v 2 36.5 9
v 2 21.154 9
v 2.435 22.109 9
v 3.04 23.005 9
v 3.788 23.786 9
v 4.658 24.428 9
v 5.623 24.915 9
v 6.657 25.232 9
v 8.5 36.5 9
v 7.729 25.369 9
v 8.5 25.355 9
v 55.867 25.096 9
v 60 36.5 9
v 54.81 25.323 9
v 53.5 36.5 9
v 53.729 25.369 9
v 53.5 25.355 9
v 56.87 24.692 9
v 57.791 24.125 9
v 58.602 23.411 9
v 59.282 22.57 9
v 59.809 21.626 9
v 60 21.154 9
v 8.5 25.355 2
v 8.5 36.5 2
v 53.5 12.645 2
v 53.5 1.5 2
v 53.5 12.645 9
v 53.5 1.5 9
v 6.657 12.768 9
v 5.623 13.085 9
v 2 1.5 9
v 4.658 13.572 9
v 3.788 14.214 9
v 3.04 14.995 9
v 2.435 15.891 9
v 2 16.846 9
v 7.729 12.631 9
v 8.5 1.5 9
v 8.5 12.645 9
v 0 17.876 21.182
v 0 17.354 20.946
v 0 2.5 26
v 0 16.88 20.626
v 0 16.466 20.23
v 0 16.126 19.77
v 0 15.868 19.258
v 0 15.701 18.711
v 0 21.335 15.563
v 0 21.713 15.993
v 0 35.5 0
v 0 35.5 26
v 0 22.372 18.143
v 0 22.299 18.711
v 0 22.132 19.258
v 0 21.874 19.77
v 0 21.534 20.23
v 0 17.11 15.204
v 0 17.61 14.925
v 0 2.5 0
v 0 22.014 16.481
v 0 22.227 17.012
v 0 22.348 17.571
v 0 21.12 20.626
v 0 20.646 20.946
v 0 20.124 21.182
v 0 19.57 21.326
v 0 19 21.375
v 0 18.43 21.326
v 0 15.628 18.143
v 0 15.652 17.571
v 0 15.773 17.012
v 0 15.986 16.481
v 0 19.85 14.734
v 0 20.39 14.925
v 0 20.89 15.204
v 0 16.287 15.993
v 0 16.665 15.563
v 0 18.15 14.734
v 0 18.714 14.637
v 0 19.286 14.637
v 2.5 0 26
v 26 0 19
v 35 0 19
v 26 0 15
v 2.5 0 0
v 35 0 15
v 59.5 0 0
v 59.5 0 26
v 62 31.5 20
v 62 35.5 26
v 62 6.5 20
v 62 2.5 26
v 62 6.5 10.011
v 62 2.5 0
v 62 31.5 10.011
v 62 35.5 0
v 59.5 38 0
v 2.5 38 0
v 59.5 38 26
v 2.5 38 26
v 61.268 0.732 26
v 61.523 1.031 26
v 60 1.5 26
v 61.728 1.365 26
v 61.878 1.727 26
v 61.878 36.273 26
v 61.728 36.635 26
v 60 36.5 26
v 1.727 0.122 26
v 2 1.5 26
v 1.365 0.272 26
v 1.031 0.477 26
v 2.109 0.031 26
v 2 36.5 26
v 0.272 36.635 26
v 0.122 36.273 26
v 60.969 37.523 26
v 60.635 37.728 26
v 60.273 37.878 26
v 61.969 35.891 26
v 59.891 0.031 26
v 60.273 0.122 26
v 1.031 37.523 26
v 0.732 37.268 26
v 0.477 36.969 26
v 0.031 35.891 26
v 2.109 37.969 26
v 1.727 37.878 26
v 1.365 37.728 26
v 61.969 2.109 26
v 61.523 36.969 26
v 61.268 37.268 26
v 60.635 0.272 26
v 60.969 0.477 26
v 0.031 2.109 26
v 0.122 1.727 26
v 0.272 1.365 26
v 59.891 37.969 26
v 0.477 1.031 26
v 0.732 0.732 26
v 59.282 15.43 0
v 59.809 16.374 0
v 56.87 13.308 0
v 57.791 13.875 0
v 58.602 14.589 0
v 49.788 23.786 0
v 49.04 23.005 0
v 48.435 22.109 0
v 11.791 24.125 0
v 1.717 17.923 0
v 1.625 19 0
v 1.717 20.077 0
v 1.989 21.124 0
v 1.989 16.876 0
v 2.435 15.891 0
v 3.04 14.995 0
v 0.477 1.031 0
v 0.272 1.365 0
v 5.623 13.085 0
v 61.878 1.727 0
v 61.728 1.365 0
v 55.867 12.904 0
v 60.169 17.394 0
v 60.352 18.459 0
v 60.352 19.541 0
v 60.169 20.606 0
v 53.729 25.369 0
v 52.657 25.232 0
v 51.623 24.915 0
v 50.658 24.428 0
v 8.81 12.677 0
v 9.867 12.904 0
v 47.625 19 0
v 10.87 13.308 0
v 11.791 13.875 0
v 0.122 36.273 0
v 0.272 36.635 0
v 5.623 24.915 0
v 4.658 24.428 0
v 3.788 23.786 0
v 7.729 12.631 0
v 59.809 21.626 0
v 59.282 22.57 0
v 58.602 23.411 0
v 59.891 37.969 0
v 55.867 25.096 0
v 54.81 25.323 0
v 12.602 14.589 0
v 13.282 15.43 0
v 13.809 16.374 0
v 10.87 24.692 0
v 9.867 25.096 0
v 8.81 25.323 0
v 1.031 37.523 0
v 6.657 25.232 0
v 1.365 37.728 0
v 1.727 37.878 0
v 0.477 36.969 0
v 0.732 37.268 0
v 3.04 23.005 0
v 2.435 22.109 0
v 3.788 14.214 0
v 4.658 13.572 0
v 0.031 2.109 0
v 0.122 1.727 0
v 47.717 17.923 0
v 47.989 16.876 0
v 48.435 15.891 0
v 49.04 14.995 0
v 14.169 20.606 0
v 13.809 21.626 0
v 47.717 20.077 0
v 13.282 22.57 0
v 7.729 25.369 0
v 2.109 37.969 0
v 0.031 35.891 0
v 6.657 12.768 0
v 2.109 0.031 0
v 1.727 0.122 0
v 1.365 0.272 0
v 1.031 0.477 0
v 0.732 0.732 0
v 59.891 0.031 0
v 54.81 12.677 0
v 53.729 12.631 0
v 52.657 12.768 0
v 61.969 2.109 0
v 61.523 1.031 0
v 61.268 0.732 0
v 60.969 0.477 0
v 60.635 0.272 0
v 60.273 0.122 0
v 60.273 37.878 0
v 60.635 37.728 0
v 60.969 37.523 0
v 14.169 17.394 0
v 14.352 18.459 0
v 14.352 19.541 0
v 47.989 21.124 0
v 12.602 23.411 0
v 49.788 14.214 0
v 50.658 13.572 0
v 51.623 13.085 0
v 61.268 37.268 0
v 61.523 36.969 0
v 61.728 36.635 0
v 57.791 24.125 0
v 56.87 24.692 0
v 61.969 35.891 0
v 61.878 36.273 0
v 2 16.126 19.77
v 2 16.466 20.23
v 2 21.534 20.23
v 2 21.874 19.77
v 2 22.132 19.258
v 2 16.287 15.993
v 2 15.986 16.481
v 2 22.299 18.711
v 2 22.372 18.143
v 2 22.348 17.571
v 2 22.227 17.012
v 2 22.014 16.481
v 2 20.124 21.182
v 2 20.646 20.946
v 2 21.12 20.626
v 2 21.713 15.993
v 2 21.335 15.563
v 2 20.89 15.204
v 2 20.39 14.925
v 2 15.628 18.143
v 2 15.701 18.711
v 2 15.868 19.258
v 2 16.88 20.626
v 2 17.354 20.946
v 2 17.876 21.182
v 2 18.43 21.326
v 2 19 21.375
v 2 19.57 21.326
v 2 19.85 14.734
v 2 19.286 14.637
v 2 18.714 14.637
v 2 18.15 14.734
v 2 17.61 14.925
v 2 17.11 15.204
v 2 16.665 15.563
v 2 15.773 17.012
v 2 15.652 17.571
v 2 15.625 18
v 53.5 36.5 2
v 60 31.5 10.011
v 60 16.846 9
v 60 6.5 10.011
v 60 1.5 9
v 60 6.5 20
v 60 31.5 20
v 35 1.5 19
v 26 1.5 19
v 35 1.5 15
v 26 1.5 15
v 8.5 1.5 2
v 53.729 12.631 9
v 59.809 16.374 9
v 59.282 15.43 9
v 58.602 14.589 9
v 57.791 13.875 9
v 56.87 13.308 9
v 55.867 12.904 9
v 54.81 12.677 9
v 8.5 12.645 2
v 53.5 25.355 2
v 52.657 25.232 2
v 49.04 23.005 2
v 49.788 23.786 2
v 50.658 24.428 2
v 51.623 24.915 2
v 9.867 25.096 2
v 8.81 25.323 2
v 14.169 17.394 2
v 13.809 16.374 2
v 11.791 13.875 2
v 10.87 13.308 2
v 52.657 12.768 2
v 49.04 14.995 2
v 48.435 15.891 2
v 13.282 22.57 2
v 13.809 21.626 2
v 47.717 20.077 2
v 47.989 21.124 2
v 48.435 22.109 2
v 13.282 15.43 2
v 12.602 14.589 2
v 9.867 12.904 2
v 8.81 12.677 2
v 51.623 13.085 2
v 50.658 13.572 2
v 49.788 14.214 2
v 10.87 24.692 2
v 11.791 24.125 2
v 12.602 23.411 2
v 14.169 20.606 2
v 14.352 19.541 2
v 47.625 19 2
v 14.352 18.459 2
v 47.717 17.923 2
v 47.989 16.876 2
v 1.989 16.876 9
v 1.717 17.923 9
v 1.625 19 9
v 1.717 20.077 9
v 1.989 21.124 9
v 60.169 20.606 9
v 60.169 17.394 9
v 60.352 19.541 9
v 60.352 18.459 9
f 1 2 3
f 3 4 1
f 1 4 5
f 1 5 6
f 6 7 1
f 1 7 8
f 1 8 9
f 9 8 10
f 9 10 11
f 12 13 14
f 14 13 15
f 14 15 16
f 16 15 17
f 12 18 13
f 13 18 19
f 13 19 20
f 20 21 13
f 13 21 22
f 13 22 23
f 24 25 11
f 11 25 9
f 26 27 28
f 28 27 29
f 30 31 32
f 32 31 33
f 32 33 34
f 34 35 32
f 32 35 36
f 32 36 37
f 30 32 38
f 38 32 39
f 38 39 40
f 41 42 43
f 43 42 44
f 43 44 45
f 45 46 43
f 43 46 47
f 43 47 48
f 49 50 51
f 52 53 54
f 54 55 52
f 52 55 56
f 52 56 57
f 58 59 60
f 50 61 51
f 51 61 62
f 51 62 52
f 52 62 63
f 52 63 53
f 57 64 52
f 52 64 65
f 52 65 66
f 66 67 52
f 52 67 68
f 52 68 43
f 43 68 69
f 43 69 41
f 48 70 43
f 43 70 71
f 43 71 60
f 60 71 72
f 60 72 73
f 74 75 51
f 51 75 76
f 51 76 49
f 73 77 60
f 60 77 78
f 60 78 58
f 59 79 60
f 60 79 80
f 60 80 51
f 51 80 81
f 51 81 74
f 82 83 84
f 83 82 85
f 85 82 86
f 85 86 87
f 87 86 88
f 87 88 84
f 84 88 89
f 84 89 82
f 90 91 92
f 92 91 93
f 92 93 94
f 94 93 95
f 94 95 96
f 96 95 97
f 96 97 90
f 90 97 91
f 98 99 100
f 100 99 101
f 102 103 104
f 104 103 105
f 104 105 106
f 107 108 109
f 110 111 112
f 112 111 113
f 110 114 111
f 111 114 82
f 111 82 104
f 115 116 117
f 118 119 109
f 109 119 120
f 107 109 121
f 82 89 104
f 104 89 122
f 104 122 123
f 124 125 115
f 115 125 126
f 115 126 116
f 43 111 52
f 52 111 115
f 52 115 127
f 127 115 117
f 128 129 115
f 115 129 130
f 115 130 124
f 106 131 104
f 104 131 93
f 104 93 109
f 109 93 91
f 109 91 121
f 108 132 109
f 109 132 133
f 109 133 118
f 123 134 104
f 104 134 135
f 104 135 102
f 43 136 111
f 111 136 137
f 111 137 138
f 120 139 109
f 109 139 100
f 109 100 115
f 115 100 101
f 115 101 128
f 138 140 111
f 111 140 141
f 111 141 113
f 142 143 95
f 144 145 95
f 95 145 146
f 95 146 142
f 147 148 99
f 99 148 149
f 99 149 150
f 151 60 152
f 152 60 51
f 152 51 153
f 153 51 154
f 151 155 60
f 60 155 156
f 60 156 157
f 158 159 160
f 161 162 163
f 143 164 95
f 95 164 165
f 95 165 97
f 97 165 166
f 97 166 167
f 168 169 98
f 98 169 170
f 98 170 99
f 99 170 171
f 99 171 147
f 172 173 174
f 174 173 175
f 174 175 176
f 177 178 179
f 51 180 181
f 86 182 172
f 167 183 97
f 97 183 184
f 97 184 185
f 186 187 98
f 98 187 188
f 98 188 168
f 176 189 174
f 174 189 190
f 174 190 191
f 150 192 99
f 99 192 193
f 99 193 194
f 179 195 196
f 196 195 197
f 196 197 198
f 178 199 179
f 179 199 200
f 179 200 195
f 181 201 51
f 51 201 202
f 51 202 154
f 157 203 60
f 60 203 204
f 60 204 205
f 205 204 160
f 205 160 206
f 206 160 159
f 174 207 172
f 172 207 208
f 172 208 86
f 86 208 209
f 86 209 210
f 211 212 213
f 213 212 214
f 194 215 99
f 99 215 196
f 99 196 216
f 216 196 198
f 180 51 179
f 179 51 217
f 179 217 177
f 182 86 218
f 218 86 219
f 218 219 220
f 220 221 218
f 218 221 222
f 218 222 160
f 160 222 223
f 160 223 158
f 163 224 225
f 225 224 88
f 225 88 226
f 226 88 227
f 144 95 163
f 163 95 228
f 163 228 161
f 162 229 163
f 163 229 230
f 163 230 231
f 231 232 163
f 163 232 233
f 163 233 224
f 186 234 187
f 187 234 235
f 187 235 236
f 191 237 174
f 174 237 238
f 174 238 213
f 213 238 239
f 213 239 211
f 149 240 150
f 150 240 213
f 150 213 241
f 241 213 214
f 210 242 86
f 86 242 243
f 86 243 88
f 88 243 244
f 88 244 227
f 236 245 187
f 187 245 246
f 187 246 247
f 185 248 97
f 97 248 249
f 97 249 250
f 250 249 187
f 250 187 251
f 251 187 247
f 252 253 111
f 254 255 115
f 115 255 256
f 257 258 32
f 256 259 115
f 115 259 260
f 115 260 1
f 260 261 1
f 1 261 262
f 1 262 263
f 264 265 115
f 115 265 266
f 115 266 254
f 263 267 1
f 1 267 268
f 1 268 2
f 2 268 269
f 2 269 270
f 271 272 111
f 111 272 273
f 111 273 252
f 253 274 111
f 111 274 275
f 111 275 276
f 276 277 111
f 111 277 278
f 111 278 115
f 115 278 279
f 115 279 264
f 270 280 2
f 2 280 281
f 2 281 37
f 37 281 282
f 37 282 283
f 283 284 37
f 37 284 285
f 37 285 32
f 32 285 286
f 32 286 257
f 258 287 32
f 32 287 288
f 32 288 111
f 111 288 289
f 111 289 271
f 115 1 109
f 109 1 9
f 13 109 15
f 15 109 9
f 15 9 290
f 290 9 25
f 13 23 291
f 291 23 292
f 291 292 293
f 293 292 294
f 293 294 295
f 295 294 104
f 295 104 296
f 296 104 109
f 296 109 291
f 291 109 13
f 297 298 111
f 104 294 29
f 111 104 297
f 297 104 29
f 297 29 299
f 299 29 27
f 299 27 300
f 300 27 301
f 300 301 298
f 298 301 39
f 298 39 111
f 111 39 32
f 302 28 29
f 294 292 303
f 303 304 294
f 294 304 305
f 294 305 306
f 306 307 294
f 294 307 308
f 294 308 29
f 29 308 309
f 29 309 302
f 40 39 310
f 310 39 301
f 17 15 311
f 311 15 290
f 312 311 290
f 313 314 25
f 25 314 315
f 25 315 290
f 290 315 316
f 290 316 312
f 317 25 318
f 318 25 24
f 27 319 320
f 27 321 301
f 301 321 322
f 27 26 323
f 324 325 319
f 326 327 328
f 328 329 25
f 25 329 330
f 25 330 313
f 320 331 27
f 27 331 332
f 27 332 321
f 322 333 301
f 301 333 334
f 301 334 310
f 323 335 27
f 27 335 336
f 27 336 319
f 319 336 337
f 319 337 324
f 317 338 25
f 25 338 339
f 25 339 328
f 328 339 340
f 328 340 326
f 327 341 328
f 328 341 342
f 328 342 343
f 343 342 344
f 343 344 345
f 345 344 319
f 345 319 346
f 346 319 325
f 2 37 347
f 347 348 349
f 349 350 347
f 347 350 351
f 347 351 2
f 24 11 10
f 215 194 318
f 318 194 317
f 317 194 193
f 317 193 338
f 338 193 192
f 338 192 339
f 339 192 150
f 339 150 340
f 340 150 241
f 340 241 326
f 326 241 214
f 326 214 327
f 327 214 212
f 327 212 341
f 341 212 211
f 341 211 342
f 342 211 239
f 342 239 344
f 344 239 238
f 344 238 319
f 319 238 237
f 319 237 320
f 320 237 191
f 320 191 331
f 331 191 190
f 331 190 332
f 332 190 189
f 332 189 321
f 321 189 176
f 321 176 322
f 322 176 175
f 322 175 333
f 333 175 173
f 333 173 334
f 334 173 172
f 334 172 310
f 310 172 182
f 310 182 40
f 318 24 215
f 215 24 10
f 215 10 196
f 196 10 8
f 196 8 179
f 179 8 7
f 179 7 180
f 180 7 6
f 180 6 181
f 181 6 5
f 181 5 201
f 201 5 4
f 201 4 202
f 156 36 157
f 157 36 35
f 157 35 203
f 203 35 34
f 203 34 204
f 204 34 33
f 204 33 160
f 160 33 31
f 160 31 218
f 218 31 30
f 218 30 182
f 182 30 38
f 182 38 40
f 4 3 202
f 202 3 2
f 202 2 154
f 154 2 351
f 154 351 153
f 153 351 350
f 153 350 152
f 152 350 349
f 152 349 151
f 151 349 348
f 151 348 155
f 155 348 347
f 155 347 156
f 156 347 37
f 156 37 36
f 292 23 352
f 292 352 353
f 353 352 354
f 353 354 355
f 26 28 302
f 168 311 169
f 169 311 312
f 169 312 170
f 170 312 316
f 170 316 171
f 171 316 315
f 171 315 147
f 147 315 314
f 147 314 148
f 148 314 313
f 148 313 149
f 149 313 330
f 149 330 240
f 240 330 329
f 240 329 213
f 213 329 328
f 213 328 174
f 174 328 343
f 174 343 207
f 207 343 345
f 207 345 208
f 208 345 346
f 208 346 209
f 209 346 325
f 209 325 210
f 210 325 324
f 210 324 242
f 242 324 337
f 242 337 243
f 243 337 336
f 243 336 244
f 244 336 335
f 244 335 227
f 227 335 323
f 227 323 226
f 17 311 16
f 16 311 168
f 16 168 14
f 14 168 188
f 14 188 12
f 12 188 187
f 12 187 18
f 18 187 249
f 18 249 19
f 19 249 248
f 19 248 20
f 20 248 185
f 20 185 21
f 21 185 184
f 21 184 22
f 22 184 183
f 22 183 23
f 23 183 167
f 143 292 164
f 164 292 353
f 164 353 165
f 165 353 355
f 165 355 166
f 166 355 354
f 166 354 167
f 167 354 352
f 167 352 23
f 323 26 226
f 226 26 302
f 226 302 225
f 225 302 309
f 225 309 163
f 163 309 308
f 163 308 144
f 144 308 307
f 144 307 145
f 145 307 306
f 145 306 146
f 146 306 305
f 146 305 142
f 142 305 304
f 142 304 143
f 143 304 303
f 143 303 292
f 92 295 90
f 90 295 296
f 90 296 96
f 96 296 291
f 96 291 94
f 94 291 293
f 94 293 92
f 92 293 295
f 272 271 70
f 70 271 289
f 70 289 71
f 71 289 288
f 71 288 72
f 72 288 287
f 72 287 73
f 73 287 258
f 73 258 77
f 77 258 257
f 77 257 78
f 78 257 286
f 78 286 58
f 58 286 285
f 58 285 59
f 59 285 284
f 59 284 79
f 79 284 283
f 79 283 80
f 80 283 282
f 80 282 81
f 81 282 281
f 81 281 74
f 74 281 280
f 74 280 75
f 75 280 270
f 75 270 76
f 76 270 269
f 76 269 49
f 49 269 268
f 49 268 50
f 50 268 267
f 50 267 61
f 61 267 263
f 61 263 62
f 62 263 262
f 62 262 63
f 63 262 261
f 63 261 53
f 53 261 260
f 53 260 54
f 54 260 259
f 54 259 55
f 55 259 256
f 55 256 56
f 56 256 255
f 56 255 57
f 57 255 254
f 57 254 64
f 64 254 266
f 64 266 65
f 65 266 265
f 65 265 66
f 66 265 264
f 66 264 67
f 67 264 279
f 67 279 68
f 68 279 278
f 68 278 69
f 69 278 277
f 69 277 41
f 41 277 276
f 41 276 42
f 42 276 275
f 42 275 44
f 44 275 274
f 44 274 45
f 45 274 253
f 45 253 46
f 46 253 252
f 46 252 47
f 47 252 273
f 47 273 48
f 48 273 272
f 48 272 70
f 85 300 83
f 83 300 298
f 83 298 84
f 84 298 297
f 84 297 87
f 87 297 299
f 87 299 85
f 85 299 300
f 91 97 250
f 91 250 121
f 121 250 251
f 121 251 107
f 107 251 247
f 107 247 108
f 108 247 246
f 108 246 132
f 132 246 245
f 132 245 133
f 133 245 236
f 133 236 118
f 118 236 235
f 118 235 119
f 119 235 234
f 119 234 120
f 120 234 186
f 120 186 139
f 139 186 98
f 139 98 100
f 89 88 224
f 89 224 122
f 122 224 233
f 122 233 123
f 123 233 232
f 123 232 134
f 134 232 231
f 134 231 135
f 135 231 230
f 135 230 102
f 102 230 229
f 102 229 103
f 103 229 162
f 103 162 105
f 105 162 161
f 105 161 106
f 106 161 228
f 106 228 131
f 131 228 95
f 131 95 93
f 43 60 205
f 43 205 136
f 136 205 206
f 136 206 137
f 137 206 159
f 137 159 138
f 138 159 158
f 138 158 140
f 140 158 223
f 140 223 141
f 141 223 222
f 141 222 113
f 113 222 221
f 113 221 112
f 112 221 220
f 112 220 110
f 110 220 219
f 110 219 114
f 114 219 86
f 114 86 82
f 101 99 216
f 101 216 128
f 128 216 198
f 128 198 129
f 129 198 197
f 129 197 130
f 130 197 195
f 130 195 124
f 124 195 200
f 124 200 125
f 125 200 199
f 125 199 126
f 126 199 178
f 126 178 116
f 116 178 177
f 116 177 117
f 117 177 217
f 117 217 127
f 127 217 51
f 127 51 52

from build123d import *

# Parameters (mm, degrees)
SKETCH1_W           = 62
SKETCH1_H           = 38
BOSS_EXTRUDE1_DEPTH = 26
SKETCH2_W           = 58
SKETCH2_H           = 35
CUT_EXTRUDE1_DEPTH  = 17
SKETCH4_W           = 45
SKETCH4_H           = 35
CUT_EXTRUDE3_DEPTH  = 7
SKETCH5_R           = 6.375
CUT_EXTRUDE4_DEPTH  = 9
SKETCH6_W           = 9.989337028
SKETCH6_H           = 25
CUT_EXTRUDE5_DEPTH  = 17
SKETCH7_R           = 3.375
CUT_EXTRUDE6_DEPTH  = 7
SKETCH8_W           = 9
SKETCH8_H           = 4
CUT_EXTRUDE7_DEPTH  = 7
FILLET1_R           = 2.5


with BuildPart() as part:
    # Sketch1 → Boss-Extrude1 (new body)
    with BuildSketch(Plane.XY):
        with Locations((31, 19)):
            Rectangle(SKETCH1_W, SKETCH1_H)
    extrude(amount=BOSS_EXTRUDE1_DEPTH)

    # Sketch2 → Cut-Extrude1 (cut)
    with BuildSketch(Plane.XY.offset(26)):
        with Locations((31, 19)):
            Rectangle(SKETCH2_W, SKETCH2_H)
    extrude(amount=-CUT_EXTRUDE1_DEPTH, mode=Mode.SUBTRACT)

    # Sketch4 → Cut-Extrude3 (cut)
    with BuildSketch(Plane.XY.offset(9)):
        with Locations((31, 19)):
            Rectangle(SKETCH4_W, SKETCH4_H)
    extrude(amount=-CUT_EXTRUDE3_DEPTH, mode=Mode.SUBTRACT)

    # Sketch5 → Cut-Extrude4 (cut)
    with BuildSketch(Plane(origin=(0, 0, 0), x_dir=(-1, 0, 0), z_dir=(0, 0, -1))):
        with Locations((-54, 19)):
            Circle(SKETCH5_R)
        with Locations((-8, 19)):
            Circle(SKETCH5_R)
    extrude(amount=-CUT_EXTRUDE4_DEPTH, mode=Mode.SUBTRACT)

    # Sketch6 → Cut-Extrude5 (cut)
    with BuildSketch(Plane(origin=(62, 0, 0), x_dir=(0, 0, -1), z_dir=(1, 0, 0))):
        with Locations((-15.005331486, 19)):
            Rectangle(SKETCH6_W, SKETCH6_H)
    extrude(amount=-CUT_EXTRUDE5_DEPTH, mode=Mode.SUBTRACT)

    # Sketch7 → Cut-Extrude6 (cut)
    with BuildSketch(Plane.ZY):
        with Locations((18, 19)):
            Circle(SKETCH7_R)
    extrude(amount=-CUT_EXTRUDE6_DEPTH, mode=Mode.SUBTRACT)

    # Sketch8 → Cut-Extrude7 (cut)
    with BuildSketch(Plane.XZ):
        with Locations((30.5, 17)):
            Rectangle(SKETCH8_W, SKETCH8_H)
    extrude(amount=-CUT_EXTRUDE7_DEPTH, mode=Mode.SUBTRACT)

    # Fillet1
    fillet1_edges = [part.edges().sort_by_distance(p)[0] for p in [
        (0, 38, 13),
        (62, 38, 13),
        (62, 0, 13),
        (0, 0, 13),
    ]]
    fillet(fillet1_edges, radius=FILLET1_R)


solid = part.part
